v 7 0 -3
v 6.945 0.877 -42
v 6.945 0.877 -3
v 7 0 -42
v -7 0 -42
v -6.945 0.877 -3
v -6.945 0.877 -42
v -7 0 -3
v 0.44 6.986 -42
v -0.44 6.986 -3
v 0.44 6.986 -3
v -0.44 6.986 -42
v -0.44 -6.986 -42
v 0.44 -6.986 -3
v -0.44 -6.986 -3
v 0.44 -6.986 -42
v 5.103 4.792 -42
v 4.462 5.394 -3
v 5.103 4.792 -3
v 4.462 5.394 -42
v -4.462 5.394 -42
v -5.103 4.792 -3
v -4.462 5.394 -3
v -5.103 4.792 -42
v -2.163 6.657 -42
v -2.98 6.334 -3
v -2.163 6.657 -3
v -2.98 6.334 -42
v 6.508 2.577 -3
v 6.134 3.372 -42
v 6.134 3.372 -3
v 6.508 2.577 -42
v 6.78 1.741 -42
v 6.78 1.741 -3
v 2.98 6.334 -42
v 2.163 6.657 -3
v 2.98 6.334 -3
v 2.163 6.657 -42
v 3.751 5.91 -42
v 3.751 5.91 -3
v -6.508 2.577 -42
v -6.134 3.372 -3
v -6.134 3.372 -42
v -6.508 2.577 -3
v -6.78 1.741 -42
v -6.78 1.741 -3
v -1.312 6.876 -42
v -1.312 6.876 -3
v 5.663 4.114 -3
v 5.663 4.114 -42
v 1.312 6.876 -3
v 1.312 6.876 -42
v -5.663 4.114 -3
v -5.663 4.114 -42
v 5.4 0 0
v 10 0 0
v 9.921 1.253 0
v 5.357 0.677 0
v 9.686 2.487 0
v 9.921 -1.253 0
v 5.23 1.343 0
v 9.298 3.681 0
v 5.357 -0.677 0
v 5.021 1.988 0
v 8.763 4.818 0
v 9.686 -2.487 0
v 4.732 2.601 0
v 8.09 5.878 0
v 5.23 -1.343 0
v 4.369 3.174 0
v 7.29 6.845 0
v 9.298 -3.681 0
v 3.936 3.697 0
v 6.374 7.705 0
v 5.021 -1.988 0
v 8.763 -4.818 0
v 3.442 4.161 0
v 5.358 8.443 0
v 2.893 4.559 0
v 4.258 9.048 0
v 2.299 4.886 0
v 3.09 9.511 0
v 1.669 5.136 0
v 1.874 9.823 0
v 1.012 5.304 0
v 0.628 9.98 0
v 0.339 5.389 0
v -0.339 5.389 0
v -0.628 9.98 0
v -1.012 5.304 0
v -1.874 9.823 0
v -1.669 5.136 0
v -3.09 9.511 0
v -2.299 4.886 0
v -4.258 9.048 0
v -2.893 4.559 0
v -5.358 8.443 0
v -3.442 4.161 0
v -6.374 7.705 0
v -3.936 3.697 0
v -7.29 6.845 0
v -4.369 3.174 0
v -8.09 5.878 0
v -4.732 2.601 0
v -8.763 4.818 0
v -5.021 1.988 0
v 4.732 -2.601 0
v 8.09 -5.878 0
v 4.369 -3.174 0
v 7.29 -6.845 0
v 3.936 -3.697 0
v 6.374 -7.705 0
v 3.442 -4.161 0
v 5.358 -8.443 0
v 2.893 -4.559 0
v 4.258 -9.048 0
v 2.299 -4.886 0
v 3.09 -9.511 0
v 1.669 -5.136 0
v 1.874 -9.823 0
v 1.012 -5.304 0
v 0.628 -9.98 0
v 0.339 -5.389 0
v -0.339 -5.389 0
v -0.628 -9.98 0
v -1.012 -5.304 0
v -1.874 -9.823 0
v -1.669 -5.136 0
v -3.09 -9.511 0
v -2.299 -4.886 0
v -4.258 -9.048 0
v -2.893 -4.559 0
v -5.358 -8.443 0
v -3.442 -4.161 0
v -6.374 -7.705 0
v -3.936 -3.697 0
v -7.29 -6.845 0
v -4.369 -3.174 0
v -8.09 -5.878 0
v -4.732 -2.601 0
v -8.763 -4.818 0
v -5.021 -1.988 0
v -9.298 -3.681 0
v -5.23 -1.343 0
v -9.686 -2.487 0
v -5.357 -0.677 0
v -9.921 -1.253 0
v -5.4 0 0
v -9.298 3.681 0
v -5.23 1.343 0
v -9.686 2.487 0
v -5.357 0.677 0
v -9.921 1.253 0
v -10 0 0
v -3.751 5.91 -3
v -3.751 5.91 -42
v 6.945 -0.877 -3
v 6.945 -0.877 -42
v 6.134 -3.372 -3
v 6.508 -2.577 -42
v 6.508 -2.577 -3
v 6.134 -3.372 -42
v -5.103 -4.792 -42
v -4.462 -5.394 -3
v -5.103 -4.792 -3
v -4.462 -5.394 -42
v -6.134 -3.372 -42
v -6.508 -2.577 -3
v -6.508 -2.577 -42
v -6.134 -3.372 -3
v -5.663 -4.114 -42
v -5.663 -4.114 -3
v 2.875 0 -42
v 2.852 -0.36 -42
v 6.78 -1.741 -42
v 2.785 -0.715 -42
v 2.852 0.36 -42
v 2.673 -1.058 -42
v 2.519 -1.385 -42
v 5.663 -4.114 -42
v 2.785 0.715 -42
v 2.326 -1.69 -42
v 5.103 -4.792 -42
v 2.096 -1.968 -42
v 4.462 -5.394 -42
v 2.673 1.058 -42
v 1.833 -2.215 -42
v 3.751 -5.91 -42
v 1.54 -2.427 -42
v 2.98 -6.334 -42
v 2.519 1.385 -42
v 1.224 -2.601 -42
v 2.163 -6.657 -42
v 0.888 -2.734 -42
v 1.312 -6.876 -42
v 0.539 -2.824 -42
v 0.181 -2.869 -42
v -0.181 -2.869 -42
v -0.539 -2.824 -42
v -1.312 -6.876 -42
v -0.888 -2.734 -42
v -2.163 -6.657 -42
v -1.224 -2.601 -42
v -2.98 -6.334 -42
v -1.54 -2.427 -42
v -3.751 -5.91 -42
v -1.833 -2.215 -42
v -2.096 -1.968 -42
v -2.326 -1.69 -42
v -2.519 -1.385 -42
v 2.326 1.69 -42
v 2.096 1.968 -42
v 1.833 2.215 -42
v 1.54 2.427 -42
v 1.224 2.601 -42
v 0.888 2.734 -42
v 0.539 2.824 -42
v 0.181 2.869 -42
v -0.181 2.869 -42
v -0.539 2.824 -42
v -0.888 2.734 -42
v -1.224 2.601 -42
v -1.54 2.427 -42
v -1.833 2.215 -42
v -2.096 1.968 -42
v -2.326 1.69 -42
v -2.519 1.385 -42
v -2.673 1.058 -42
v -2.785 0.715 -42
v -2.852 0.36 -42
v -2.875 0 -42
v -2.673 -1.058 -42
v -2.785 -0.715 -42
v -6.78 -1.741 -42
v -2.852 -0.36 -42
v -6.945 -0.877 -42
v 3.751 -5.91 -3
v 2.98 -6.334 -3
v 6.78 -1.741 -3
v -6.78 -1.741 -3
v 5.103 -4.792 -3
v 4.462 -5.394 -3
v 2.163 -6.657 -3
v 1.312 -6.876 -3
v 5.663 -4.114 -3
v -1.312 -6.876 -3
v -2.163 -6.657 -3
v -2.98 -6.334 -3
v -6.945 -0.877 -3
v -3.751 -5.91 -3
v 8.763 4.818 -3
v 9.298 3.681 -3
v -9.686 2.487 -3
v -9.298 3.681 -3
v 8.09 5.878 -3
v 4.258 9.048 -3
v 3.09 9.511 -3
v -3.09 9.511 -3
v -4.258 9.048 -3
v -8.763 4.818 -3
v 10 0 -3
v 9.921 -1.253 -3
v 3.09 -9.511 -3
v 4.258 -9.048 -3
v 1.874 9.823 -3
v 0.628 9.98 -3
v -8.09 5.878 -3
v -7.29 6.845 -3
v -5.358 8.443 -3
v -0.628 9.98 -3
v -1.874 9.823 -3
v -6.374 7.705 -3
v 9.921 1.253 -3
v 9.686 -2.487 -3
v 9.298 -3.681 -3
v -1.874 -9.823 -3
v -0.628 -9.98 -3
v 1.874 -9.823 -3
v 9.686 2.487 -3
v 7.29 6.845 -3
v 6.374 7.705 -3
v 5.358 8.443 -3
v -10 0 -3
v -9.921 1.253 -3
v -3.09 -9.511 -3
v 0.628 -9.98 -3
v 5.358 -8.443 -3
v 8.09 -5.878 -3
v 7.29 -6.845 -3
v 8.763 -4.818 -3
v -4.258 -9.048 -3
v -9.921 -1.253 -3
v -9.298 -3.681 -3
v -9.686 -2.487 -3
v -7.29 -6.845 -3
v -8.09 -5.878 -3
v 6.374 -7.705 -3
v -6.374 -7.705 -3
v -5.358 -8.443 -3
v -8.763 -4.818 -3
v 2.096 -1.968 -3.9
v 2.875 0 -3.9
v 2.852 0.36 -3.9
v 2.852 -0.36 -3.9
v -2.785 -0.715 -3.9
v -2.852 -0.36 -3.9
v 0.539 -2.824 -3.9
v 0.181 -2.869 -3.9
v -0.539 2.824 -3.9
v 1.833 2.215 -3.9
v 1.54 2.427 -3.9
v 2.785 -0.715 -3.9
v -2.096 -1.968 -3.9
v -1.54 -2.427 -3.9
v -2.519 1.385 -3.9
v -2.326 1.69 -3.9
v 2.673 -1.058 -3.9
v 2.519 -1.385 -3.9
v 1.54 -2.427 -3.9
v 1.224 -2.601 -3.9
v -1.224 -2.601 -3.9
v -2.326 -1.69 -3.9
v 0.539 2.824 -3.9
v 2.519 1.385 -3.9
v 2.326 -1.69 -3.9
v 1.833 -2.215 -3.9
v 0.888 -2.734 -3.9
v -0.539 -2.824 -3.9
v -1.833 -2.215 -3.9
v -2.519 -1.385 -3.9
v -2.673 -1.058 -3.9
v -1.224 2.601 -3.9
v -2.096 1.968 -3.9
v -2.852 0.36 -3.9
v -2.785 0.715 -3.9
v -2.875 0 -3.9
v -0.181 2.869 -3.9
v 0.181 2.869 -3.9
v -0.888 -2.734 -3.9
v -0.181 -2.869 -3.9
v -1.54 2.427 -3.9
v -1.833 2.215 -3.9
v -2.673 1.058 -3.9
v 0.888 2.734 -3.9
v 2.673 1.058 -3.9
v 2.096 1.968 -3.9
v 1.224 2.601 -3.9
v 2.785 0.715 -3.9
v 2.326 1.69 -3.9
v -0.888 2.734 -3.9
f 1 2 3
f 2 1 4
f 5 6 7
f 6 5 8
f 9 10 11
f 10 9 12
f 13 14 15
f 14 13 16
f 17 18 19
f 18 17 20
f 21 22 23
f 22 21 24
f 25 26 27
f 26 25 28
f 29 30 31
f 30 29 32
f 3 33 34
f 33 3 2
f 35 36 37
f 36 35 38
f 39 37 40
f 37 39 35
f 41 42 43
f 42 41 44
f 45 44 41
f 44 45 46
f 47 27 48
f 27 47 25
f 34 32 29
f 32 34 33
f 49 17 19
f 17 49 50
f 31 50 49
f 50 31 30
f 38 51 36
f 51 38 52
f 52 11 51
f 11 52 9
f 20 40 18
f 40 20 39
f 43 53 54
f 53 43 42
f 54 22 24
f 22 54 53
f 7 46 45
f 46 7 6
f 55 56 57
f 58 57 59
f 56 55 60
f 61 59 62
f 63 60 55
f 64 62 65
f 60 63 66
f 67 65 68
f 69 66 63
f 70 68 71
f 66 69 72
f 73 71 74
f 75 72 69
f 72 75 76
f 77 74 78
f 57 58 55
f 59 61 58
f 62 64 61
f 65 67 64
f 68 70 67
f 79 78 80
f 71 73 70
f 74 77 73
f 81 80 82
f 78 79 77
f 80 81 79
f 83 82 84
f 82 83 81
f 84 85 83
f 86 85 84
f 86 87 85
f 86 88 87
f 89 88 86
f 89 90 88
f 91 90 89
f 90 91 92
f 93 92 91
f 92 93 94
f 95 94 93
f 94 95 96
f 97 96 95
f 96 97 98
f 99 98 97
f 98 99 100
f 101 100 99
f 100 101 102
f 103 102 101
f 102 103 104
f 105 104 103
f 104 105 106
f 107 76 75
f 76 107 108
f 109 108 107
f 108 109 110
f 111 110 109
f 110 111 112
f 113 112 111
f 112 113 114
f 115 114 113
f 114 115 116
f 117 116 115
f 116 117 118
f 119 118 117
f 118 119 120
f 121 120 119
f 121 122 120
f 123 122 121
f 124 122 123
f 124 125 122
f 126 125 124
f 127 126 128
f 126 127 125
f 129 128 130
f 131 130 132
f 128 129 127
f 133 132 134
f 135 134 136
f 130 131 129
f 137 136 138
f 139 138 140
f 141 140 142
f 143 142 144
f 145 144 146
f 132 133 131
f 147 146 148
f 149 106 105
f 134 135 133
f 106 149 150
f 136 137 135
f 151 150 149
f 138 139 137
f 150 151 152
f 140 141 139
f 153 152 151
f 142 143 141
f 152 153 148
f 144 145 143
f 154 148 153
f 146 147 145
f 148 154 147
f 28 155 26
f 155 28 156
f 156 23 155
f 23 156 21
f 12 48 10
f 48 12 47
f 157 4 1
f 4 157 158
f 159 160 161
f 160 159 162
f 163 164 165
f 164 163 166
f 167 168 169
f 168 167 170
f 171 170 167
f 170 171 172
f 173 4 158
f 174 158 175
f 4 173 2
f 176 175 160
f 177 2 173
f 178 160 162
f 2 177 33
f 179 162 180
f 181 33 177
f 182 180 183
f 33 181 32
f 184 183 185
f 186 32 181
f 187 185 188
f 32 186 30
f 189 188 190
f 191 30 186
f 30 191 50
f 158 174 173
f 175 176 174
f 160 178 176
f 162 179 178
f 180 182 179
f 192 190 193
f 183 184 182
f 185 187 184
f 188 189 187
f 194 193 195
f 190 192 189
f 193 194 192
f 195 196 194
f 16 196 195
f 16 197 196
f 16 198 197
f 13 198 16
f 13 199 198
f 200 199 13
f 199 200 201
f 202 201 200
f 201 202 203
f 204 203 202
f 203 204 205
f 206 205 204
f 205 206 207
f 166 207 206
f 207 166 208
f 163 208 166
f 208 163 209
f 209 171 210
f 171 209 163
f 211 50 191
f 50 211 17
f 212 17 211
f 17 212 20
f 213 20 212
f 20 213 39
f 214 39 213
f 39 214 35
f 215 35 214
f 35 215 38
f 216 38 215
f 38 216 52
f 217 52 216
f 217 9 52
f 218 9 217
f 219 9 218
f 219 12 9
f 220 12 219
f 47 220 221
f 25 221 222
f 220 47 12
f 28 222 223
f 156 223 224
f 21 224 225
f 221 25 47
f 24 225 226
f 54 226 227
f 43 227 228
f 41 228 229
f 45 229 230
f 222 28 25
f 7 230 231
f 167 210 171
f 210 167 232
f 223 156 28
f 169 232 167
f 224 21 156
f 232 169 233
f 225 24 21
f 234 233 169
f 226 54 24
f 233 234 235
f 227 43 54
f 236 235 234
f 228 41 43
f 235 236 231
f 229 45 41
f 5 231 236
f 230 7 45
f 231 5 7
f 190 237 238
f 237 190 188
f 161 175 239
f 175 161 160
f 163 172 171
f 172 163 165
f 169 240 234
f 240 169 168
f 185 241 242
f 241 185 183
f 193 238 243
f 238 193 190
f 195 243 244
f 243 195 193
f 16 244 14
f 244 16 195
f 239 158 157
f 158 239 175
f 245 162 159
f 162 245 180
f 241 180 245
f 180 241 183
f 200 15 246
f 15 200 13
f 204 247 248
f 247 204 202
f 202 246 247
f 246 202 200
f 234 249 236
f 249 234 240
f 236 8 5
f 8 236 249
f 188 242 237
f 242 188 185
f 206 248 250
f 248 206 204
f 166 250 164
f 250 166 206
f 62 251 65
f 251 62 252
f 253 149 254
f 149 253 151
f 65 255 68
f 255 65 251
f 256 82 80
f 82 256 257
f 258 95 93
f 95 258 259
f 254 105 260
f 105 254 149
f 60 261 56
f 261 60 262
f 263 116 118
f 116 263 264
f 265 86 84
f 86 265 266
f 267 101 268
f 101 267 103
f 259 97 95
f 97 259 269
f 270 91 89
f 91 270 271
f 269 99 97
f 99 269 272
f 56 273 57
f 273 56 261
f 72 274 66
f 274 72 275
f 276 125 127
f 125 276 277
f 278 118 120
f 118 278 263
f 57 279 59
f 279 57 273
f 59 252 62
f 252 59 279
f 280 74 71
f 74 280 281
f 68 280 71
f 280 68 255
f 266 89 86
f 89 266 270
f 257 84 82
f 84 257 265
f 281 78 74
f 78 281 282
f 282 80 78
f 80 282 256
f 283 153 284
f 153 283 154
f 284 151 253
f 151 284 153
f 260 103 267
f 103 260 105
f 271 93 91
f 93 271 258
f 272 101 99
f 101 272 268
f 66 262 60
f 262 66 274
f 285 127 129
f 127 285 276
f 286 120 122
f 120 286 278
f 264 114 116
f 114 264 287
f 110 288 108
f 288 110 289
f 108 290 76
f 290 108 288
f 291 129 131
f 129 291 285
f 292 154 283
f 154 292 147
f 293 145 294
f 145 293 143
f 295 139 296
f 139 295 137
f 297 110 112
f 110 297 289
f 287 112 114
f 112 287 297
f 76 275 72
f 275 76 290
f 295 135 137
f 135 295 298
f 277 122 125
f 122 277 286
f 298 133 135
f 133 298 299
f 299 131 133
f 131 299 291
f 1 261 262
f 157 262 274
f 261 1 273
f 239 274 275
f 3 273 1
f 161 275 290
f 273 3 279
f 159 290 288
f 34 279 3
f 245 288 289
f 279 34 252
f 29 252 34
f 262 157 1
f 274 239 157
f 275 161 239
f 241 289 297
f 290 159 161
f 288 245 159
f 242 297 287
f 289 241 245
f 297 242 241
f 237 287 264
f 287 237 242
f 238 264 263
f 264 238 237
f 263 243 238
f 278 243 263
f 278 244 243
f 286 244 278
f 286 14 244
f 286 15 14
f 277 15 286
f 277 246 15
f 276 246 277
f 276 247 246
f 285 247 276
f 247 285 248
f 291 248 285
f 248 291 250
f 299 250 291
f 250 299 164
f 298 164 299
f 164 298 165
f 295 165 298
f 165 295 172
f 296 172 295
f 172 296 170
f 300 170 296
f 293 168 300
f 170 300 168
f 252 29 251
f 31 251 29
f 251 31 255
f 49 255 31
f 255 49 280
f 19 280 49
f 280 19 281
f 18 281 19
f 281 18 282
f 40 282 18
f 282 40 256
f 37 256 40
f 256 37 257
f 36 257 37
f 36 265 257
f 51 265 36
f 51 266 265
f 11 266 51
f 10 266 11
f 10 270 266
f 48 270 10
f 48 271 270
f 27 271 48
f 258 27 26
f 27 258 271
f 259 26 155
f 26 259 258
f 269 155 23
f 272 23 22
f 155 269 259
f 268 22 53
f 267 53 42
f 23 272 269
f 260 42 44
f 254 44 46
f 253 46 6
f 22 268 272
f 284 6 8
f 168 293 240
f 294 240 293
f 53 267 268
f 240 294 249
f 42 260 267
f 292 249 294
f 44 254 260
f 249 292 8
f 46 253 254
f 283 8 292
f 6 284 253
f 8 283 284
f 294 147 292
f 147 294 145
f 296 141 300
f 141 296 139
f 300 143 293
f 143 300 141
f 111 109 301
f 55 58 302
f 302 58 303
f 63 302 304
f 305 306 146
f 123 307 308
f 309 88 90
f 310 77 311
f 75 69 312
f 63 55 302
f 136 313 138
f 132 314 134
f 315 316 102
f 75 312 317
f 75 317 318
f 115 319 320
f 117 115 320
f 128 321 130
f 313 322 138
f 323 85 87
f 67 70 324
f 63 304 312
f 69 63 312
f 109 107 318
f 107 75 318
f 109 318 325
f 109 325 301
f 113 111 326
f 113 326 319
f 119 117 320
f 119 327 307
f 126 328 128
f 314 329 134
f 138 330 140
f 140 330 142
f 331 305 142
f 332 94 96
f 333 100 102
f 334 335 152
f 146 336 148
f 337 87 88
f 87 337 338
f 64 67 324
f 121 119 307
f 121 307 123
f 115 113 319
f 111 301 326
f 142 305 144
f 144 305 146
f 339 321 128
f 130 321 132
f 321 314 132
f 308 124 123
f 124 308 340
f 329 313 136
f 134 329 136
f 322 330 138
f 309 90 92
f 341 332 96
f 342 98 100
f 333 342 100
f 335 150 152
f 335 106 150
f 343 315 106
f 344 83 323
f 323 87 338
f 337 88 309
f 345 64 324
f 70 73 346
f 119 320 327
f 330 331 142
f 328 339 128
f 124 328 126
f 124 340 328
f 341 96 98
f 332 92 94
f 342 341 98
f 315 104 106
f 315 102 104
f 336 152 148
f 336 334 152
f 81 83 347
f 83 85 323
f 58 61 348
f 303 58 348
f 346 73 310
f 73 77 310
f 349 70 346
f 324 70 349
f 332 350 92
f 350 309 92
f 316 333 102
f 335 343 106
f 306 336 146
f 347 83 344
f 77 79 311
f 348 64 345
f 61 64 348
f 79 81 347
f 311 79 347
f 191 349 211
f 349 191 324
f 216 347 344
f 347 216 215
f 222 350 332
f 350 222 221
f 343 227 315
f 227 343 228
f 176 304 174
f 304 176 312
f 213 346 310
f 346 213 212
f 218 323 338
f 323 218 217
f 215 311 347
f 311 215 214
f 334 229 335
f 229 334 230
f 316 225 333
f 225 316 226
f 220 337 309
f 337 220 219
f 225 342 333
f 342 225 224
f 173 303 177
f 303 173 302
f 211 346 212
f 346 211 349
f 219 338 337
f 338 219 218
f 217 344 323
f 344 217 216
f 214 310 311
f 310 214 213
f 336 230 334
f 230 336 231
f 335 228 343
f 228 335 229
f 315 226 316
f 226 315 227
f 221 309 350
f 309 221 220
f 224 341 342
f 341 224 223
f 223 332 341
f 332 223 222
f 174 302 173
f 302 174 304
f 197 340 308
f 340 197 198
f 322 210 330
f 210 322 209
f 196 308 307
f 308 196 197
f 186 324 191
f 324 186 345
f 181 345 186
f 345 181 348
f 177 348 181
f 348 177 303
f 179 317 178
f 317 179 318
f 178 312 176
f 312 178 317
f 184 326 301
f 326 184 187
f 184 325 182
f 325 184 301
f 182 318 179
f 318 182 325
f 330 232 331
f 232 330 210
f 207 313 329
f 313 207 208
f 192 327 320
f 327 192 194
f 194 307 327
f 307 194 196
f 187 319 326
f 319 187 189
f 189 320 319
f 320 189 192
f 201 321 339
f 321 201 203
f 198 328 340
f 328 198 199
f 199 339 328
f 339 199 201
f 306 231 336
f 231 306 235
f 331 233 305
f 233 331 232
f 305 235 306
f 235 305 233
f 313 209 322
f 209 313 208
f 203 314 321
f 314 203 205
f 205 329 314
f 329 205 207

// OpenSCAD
$fn = 50;


difference() {
	union() {
		translate(v = [0, 0, -42.0000000000]) {
			cylinder(h = 42, r = 7.0000000000);
		}
		translate(v = [0, 0, -3.0000000000]) {
			cylinder(h = 3, r = 10.0000000000);
		}
	}
	union() {
		translate(v = [0, 0, 0]) {
			rotate(a = [0, 0, 0]) {
				difference() {
					union() {
						#translate(v = [0, 0, -42.0000000000]) {
							cylinder(h = 42, r = 2.6000000000);
						}
						#translate(v = [0, 0, -3.9000000000]) {
							cylinder(h = 3.9000000000, r1 = 2.8750000000, r2 = 5.4000000000);
						}
						#translate(v = [0, 0, -42.0000000000]) {
							cylinder(h = 42, r = 2.8750000000);
						}
						#translate(v = [0, 0, -42.0000000000]) {
							cylinder(h = 42, r = 2.6000000000);
						}
					}
					union();
				}
			}
		}
	}
}
